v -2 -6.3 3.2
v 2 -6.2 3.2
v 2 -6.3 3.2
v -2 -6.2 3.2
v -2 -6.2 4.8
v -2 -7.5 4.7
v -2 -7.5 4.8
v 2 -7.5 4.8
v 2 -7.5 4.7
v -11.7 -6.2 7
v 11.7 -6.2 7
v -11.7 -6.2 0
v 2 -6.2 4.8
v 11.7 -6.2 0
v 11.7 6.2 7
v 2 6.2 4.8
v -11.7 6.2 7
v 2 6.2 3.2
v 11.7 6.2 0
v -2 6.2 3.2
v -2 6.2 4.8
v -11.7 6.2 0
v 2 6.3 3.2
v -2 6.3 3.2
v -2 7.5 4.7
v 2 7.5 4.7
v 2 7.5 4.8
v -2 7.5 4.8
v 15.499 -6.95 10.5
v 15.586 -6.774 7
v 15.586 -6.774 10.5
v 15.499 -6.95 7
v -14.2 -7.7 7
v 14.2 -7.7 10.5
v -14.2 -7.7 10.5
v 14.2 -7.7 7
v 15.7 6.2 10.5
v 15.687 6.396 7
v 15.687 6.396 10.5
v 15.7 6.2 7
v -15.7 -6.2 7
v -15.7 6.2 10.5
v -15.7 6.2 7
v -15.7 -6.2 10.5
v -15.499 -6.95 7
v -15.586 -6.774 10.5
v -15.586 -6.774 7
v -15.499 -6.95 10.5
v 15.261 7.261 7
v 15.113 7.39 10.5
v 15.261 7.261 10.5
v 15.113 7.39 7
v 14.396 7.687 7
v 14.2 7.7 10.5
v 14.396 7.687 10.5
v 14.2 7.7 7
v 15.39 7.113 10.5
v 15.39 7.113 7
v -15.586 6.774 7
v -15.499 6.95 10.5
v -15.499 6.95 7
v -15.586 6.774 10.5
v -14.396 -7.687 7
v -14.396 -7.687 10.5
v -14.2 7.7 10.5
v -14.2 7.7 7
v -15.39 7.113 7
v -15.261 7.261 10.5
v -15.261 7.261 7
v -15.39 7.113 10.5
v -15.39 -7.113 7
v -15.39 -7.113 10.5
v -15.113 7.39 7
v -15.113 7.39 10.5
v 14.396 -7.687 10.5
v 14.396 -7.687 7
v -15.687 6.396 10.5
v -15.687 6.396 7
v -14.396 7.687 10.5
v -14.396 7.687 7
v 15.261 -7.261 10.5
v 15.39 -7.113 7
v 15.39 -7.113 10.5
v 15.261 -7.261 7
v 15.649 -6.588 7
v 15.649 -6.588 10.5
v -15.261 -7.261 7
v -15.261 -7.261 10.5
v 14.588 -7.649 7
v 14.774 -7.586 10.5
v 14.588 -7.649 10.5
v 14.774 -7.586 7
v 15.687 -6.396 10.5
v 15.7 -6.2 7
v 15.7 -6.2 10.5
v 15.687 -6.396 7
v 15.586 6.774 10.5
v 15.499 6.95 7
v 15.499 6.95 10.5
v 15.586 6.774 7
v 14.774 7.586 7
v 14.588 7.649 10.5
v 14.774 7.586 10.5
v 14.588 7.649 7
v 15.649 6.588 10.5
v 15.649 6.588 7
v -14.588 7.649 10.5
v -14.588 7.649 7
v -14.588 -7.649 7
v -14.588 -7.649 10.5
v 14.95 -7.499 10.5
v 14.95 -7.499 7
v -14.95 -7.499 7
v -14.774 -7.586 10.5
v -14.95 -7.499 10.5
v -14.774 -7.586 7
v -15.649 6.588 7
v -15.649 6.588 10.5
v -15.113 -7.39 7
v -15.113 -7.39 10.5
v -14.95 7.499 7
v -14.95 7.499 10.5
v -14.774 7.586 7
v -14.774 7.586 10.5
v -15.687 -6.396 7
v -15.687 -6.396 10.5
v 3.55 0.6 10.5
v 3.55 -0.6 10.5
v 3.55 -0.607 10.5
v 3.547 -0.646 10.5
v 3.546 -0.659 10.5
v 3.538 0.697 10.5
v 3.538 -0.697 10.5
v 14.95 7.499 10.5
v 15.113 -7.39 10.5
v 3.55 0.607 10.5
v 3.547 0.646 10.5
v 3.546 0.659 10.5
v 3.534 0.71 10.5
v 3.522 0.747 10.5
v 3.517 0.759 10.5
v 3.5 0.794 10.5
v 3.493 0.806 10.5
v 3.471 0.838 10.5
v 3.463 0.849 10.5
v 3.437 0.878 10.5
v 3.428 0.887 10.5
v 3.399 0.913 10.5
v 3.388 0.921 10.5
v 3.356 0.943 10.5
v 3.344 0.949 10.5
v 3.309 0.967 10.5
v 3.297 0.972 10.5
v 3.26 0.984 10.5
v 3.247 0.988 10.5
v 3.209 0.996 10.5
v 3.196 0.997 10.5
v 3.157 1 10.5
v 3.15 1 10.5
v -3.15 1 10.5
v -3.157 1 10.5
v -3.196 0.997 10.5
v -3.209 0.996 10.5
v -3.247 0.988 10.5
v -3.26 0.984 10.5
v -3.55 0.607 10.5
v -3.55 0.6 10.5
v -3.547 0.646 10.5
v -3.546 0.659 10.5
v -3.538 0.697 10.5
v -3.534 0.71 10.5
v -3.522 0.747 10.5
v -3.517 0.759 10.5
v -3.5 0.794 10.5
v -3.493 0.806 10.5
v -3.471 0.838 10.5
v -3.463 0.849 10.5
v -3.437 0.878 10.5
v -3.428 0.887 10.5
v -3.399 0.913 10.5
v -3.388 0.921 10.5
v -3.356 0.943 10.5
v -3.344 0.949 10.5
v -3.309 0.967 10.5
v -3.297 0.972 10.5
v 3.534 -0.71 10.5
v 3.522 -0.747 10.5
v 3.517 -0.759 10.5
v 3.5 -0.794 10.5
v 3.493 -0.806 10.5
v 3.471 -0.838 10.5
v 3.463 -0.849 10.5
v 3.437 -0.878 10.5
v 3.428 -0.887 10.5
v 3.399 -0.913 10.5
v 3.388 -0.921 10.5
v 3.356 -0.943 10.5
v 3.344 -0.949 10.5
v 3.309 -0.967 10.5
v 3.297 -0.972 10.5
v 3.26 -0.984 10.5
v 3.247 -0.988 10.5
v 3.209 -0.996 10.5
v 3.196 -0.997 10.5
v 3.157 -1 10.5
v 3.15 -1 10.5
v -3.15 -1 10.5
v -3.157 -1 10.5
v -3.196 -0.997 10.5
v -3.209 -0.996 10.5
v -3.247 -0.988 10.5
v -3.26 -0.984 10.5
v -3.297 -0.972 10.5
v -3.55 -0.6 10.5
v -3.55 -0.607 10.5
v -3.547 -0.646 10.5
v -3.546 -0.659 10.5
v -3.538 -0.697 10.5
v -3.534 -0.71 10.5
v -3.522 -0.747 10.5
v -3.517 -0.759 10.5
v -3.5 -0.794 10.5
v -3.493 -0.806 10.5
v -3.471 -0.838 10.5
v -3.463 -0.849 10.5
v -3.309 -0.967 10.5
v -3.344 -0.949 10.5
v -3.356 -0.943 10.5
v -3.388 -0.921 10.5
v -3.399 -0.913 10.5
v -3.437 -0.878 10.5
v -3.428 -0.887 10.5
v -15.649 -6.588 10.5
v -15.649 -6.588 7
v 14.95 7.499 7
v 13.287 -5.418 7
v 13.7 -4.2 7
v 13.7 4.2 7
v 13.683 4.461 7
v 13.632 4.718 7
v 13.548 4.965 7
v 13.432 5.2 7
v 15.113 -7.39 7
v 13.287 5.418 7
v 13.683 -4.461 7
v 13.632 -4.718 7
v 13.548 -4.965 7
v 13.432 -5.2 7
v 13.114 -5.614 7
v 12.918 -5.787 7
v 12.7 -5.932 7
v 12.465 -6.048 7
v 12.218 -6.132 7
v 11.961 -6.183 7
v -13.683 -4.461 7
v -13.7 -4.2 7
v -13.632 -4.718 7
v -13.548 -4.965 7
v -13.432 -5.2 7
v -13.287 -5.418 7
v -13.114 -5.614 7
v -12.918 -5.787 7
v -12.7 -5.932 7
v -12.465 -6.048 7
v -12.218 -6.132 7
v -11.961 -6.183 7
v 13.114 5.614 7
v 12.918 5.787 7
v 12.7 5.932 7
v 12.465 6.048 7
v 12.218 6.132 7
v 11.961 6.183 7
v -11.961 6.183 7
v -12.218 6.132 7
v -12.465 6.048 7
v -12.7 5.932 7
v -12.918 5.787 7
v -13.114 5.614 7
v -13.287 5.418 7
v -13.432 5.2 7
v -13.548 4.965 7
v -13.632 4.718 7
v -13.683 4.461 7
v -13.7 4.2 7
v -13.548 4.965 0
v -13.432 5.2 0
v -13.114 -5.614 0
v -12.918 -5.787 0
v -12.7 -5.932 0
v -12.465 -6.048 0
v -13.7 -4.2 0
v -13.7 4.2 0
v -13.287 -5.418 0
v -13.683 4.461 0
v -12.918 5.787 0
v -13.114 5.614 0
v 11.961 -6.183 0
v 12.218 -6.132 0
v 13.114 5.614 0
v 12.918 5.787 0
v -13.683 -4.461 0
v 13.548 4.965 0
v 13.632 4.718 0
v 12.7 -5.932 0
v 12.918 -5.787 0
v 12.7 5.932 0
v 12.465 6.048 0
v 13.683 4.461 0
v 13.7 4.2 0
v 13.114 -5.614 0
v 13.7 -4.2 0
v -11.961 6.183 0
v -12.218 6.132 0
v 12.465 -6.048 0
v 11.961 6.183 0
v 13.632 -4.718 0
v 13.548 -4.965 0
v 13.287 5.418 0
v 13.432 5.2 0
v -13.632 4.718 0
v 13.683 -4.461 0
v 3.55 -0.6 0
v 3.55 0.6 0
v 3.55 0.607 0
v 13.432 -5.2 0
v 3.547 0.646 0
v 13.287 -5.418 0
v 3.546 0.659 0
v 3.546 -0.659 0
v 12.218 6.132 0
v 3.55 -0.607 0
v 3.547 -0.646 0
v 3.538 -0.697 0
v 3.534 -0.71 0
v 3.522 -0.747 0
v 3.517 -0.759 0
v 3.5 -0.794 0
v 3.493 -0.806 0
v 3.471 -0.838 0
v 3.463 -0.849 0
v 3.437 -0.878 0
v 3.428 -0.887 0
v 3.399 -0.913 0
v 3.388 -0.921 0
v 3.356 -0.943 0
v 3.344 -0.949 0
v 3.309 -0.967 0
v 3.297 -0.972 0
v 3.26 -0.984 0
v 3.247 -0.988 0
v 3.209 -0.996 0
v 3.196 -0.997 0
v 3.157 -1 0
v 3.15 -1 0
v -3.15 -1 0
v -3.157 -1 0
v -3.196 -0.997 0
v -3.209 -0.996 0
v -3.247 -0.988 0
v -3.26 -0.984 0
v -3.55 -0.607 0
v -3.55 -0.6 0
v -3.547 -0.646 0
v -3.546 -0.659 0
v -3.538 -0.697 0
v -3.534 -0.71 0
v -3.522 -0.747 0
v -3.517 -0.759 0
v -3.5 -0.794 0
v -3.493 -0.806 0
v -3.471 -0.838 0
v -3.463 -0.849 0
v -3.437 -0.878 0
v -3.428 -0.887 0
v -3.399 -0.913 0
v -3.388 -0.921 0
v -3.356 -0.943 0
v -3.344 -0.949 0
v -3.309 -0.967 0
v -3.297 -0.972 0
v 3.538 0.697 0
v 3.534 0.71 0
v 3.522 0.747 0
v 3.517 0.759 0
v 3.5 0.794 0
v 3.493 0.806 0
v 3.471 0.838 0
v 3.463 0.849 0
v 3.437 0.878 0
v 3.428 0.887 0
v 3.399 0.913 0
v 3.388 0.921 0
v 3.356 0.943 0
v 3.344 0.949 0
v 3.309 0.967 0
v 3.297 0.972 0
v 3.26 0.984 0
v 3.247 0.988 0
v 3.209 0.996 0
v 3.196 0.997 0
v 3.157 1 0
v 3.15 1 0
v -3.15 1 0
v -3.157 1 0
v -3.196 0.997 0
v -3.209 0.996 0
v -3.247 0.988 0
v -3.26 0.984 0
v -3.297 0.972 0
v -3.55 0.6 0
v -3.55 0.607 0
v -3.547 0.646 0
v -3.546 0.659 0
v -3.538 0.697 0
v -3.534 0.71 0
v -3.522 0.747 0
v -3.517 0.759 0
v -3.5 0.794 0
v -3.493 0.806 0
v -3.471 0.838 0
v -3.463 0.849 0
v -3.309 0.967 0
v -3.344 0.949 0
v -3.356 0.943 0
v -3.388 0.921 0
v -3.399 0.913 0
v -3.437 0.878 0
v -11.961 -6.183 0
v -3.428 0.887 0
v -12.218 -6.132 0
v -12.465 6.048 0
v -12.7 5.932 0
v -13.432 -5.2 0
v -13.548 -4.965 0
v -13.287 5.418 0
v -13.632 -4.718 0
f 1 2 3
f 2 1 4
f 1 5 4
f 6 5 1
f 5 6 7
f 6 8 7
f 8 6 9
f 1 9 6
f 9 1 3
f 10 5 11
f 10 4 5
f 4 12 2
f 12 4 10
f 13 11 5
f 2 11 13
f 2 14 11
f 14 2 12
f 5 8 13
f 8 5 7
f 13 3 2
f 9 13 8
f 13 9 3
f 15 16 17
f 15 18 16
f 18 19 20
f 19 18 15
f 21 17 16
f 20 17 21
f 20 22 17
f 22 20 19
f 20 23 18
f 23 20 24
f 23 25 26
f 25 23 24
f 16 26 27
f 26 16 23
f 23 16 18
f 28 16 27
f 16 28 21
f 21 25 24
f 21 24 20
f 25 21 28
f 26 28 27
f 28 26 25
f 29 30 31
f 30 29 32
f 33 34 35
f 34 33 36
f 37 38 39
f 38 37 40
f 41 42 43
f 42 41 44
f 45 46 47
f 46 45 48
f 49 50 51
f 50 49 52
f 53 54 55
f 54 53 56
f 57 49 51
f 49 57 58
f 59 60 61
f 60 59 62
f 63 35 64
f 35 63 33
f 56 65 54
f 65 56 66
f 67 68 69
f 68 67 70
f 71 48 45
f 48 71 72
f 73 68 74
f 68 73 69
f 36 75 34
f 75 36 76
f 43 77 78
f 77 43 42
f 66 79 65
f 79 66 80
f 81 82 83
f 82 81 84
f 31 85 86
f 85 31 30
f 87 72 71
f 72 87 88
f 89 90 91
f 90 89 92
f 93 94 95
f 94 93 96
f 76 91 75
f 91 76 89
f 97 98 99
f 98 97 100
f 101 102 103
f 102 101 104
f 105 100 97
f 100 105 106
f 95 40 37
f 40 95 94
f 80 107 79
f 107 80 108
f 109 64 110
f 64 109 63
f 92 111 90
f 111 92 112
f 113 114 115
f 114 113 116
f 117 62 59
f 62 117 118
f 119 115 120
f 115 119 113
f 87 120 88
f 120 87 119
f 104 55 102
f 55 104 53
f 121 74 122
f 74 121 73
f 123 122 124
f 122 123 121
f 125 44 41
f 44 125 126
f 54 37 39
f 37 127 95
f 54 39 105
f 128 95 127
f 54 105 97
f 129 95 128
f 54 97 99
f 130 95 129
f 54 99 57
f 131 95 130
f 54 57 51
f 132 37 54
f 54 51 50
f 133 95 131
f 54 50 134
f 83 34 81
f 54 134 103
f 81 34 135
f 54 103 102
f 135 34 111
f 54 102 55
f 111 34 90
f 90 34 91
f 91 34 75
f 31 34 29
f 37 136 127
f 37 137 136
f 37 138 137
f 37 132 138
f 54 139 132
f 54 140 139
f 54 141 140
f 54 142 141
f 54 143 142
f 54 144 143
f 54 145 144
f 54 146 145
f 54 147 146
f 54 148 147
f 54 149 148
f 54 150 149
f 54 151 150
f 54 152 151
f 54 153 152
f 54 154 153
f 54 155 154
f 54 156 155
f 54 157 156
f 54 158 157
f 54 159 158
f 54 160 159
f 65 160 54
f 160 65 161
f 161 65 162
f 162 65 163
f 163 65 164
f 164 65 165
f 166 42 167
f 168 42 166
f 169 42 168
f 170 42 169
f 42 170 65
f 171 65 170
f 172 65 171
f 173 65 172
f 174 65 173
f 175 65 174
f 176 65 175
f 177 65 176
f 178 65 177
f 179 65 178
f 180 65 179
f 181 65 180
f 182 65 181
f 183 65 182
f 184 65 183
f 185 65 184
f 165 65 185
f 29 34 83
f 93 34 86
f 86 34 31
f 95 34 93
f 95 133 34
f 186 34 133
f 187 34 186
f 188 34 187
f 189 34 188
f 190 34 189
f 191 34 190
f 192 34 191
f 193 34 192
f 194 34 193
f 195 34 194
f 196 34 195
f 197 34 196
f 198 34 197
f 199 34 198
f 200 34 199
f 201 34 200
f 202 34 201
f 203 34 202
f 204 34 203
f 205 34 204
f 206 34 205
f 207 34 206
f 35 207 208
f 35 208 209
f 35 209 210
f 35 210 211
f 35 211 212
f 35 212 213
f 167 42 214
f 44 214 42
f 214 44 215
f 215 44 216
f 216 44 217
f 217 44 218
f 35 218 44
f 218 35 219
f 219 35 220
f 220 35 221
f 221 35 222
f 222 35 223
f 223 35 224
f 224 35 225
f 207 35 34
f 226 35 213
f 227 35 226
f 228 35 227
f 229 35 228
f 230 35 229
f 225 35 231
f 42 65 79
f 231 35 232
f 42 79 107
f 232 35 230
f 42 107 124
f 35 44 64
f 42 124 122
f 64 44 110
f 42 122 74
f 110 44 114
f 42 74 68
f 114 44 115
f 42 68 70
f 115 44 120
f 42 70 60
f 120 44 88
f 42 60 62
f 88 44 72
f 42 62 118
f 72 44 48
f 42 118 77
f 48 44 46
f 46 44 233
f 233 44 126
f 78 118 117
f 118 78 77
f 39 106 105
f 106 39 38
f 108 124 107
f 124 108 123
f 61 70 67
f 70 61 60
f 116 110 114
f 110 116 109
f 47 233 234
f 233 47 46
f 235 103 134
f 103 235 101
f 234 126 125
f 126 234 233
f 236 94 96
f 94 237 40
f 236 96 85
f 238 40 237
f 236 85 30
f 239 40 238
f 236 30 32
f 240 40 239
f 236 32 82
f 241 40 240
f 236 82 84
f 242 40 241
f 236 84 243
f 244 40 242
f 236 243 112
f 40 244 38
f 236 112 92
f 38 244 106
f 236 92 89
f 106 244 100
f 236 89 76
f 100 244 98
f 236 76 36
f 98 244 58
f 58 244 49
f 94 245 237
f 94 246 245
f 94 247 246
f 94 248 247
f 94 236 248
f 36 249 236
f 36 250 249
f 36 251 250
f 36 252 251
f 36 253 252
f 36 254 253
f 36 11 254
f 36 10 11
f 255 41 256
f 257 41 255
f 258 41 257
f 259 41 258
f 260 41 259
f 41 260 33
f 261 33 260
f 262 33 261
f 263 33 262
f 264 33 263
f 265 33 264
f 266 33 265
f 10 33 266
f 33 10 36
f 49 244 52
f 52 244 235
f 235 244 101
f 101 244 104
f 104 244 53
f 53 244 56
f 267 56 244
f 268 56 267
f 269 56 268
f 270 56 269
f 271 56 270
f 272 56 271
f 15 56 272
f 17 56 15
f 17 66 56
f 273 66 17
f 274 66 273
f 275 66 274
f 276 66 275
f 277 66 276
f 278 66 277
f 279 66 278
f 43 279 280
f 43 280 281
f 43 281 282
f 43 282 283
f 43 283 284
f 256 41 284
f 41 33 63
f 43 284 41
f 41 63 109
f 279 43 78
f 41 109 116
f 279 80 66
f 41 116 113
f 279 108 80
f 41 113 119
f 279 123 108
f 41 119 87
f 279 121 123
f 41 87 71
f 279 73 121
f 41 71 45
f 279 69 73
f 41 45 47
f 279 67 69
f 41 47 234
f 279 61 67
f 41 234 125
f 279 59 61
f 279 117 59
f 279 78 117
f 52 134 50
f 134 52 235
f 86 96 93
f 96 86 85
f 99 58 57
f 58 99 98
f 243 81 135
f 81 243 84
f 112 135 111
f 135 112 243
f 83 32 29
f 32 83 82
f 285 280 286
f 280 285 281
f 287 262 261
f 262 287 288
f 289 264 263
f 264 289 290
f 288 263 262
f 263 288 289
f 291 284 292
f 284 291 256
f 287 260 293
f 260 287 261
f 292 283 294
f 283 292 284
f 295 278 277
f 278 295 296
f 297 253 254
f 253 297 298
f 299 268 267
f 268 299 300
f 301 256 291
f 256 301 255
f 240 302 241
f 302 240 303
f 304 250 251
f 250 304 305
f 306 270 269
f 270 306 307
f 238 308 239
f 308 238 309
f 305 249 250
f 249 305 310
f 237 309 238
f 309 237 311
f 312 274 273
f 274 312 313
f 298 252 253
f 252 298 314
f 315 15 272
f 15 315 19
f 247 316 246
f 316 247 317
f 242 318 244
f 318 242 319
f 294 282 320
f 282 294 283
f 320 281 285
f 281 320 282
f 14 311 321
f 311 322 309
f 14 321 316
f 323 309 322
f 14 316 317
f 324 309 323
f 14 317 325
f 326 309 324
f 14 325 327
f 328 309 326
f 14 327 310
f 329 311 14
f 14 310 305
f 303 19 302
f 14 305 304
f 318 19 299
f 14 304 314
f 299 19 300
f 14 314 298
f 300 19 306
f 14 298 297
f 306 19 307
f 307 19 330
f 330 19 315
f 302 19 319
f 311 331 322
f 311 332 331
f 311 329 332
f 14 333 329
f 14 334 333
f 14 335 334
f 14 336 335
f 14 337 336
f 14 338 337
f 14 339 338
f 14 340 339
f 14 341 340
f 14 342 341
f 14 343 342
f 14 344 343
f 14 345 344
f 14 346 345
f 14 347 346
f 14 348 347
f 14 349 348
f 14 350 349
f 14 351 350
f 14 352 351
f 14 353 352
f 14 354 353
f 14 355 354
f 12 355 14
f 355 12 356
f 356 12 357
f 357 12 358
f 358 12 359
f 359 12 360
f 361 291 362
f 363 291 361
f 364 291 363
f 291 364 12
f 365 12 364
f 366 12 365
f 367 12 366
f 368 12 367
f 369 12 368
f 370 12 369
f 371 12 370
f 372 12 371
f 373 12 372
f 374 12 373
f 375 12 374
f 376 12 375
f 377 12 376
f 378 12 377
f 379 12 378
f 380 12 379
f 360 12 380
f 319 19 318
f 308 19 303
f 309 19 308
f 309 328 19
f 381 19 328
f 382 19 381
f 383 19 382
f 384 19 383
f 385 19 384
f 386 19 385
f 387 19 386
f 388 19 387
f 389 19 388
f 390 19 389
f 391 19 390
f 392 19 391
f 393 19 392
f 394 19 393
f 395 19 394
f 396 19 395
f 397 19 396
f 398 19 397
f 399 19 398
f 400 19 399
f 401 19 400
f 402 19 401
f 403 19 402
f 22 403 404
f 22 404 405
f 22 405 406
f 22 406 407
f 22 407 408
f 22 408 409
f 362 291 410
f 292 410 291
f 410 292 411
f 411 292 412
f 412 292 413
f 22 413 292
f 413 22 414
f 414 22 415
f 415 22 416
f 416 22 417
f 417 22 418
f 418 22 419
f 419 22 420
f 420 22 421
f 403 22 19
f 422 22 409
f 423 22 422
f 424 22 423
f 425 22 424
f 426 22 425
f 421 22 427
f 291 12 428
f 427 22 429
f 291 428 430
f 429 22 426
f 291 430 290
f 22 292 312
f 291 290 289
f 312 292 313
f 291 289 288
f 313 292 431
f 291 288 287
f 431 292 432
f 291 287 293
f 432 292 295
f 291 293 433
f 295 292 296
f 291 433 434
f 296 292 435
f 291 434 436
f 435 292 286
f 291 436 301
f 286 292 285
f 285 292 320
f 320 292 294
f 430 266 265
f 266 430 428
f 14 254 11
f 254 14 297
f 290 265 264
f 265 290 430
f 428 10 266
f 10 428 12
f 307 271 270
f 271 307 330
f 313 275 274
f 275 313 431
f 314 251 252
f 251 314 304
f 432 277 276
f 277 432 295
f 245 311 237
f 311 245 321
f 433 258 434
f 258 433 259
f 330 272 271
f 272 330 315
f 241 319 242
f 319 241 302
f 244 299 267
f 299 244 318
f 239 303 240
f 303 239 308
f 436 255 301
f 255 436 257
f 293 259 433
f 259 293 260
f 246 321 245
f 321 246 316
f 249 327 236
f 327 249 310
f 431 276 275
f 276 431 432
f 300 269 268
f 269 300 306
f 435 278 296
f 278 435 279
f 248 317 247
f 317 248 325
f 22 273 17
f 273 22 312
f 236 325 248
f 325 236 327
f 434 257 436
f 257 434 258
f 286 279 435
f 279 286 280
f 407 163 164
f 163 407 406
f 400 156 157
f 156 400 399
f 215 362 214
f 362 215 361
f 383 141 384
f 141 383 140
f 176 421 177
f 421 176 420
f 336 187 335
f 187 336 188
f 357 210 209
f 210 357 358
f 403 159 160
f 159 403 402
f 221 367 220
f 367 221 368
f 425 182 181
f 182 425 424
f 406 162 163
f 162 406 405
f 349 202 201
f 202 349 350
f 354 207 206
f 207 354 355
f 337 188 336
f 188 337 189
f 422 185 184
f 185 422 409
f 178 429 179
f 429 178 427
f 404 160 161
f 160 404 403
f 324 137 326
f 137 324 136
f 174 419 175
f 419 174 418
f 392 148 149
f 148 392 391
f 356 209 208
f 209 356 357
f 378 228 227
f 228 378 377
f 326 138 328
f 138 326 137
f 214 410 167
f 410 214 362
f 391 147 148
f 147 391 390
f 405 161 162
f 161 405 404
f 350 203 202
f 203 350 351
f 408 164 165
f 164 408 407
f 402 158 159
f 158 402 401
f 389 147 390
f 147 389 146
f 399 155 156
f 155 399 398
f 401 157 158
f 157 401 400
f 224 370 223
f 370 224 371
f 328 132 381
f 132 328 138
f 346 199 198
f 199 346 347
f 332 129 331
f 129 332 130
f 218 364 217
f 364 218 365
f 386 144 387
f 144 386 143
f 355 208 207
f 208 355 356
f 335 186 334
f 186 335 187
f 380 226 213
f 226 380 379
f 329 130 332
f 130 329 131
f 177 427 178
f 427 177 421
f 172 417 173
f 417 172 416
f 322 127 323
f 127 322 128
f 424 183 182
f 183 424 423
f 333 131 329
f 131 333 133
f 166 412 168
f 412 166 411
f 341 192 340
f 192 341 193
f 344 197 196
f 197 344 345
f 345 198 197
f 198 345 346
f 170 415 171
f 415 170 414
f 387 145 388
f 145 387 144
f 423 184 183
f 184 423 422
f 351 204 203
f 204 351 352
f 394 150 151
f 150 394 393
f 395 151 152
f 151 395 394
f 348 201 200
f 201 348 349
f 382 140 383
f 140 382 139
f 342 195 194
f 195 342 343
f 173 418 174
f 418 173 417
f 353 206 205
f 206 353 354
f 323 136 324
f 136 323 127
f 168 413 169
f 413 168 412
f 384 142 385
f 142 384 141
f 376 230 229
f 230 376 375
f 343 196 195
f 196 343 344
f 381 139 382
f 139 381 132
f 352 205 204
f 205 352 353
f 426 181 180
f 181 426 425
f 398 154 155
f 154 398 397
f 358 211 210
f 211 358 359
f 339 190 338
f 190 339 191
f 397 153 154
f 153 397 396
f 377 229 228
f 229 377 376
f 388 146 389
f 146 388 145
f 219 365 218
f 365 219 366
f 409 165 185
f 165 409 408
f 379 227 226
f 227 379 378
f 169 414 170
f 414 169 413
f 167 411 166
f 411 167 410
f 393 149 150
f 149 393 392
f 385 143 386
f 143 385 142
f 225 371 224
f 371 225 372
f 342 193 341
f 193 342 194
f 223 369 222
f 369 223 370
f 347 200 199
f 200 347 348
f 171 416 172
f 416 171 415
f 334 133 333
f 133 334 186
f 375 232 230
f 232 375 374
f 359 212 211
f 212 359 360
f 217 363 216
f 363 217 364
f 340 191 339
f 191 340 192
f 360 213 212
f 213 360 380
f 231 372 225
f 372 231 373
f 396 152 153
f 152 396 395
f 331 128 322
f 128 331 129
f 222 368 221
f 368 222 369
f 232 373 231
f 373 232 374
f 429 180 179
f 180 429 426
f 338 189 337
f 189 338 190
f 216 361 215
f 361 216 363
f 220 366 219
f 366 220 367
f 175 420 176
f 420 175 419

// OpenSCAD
// file: insert_base.scad
// ============================================
// MODULAR CABLE ORGANIZER - BASE INSERT MODULE
// ============================================
// This is the parent module for all insert types
// Include this file and call insert_with_port() with a port shape
// ============================================

include <parameters.scad>

// === BASE INSERT WITH CUSTOM BODY DEPTH ===
module insert_blank_custom(body_depth) {
    union() {
        // Base plate (sits in frame slot)
        rounded_box_rect(insert_width, insert_height, insert_base_depth, 1.5);
        
        // Body (protrudes out front) - custom depth
        translate([0, 0, insert_base_depth])
            rounded_box_rect(insert_body_width, insert_body_height, body_depth, 2);
        
        // Snap tabs on all 4 sides
        snap_tabs_all();
    }
}

// === BASE INSERT (default depth - for backwards compatibility) ===
module insert_blank() {
    insert_blank_custom(insert_body_depth);
}

// === INSERT WITH THROUGH-HOLE PORT (custom depth) ===
// Pass body_depth and a 2D shape as children
module insert_with_port_custom(body_depth) {
    total_depth = insert_base_depth + body_depth;
    difference() {
        insert_blank_custom(body_depth);
        
        // Cut port hole ALL THE WAY through (tube shape)
        translate([0, 0, -0.1])
            linear_extrude(total_depth + 0.2)
            offset(r=port_clearance)  // Add clearance to port opening
            children();
    }
}

// === INSERT WITH THROUGH-HOLE PORT (default depth) ===
module insert_with_port() {
    insert_with_port_custom(insert_body_depth) children();
}

// === PRE-MADE INSERT MODULES WITH CORRECT DEPTHS ===
module insert_usbc() {
    insert_with_port_custom(usbc_body_depth) port_usbc();
}

module insert_usba() {
    insert_with_port_custom(usba_body_depth) port_usba();
}

module insert_usb_mini() {
    insert_with_port_custom(usb_mini_body_depth) port_usb_mini();
}

module insert_usb_micro() {
    insert_with_port_custom(usb_micro_body_depth) port_usb_micro();
}

module insert_usb_b() {
    insert_with_port_custom(usb_b_body_depth) port_usb_b();
}

module insert_lightning() {
    insert_with_port_custom(lightning_body_depth) port_lightning();
}

module insert_hdmi() {
    insert_with_port_custom(hdmi_body_depth) port_hdmi();
}

module insert_audio_jack() {
    insert_with_port_custom(audio_jack_body_depth) port_audio_jack();
}

// === SNAP TABS (on neck/body - catch on frame cutouts) ===
// Tabs are on the body, positioned to engage with frame wall cutouts
module snap_tabs_all() {
    // Position tabs up on body (clear of base/frame)
    tab_z = insert_base_depth + snap_tab_offset;
    
    // Tabs on all 4 sides of the body
    for (angle = [0, 90, 180, 270]) {
        rotate([0, 0, angle])
            translate([0, insert_body_height/2, tab_z])
            neck_snap_tab();
    }
}

module neck_snap_tab() {
    // Wedge shape (FLIPPED): 
    // - Peak/taper on BOTTOM - slides past back plate when inserting
    // - Flat on TOP - catches and holds
    hull() {
        // Peak of wedge (protruding, at BOTTOM of tab)
        translate([-snap_tab_width/2, snap_tab_protrude, 0])
            cube([snap_tab_width, 0.1, 0.1]);
        // Flat top (at body surface, TOP of tab)
        translate([-snap_tab_width/2, 0, snap_tab_thick])
            cube([snap_tab_width, 0.1, 0.1]);
        // Base of wedge (at body surface, bottom)
        translate([-snap_tab_width/2, 0, 0])
            cube([snap_tab_width, 0.1, 0.1]);
    }
}

module snap_tab_horizontal() {
    hull() {
        translate([0, -snap_tab_protrude/2, 0])
            cube([snap_tab_width, 0.1, snap_tab_thick], center=true);
        translate([0, snap_tab_protrude/2, snap_tab_thick * 0.2])
            cube([snap_tab_width, 0.1, snap_tab_thick * 0.6], center=true);
    }
}

module snap_tab_vertical() {
    hull() {
        translate([-snap_tab_protrude/2, 0, 0])
            cube([0.1, snap_tab_width, snap_tab_thick], center=true);
        translate([snap_tab_protrude/2, 0, snap_tab_thick * 0.2])
            cube([0.1, snap_tab_width, snap_tab_thick * 0.6], center=true);
    }
}

// === UTILITY MODULES ===
module rounded_box_rect(w, d, h, r) {
    translate([0, 0, h/2])
        hull() {
            for (x = [-1, 1], y = [-1, 1])
                translate([x * (w/2 - r), y * (d/2 - r), 0])
                    cylinder(h=h, r=r, center=true);
        }
}

// === PORT SHAPE MODULES (2D) ===
// These define the cutout shapes for each connector type

module port_rounded_rect(w, h, r) {
    // Standard rounded rectangle
    hull() {
        for (x = [-1, 1], y = [-1, 1])
            translate([x * (w/2 - r), y * (h/2 - r)])
                circle(r=r);
    }
}

module port_usbc() {
    port_rounded_rect(usbc_w, usbc_h, usbc_r);
}

module port_usba() {
    port_rounded_rect(usba_w, usba_h, usba_r);
}

module port_usb_mini() {
    port_rounded_rect(usb_mini_w, usb_mini_h, usb_mini_r);
}

module port_usb_micro() {
    port_rounded_rect(usb_micro_w, usb_micro_h, usb_micro_r);
}

module port_usb_b() {
    // USB-B has beveled top corners
    hull() {
        // Bottom corners (full radius)
        for (x = [-1, 1])
            translate([x * (usb_b_w/2 - usb_b_r), -(usb_b_h/2 - usb_b_r)])
                circle(r=usb_b_r);
        // Top corners (chamfered - moved inward)
        for (x = [-1, 1])
            translate([x * (usb_b_w/2 - usb_b_r - 1), (usb_b_h/2 - usb_b_r)])
                circle(r=usb_b_r);
    }
}

module port_lightning() {
    port_rounded_rect(lightning_w, lightning_h, lightning_r);
}

module port_hdmi() {
    // HDMI is tapered (wider at top)
    hull() {
        // Top (wider)
        for (x = [-1, 1])
            translate([x * (hdmi_w/2 - hdmi_r), (hdmi_h/2 - hdmi_r)])
                circle(r=hdmi_r);
        // Bottom (narrower)
        for (x = [-1, 1])
            translate([x * (hdmi_w/2 - hdmi_r - 1), -(hdmi_h/2 - hdmi_r)])
                circle(r=hdmi_r);
    }
}

module port_audio_jack() {
    circle(d=audio_jack_dia);
}

module port_label_recess() {
    // Shallow rectangular recess for labels
    square([label_w, label_h], center=true);
}

// === RENDER (for testing this file directly) ===
// insert_blank();
// file: parameters.scad
// ============================================
// MODULAR CABLE ORGANIZER - SHARED PARAMETERS
// ============================================
// All dimensions in mm - include this in all files
// ============================================

$fn = 48;

// === TOLERANCES ===
clearance = 0.3;
port_clearance = 0.1;  // Extra clearance for port openings (reduced - 0.2 was too loose for USB-C)
wall = 1.6;

// === SLOT DIMENSIONS (2:1 aspect ratio) - scaled to 2/3 ===
slot_width = 32;  // Reduced by 1mm for more compact insert
slot_height = 16;  // Reduced by 1mm for more compact insert
slot_depth = 4;  // Reduced from 6mm - less frame depth needed

// === FRAME STRUCTURE ===
frame_wall = 0.5;   // Reduced for more compact frame
frame_border = 8;  // Increased by 10mm for mounting holes with countersink
frame_back = 2;     // Slightly thicker for snap catch strength
mount_hole_dia = 3;
countersink_dia = 6;  // Diameter of countersink for screw heads
countersink_depth = 2;  // Depth of countersink

// === GRID ===
grid_cols = 2;
grid_rows = 2;

// === INSERT BASE DIMENSIONS ===
insert_width = slot_width - (2 * clearance);
insert_height = slot_height - (2 * clearance);
insert_base_depth = slot_depth - 0.5;

// === INSERT BODY (protrudes from frame) ===
insert_body_width = insert_width - 4;
insert_body_height = insert_height - 3;
insert_body_depth = 12;  // Deep enough to accommodate male cable connectors
insert_top_thick = 1.5;  // Top platform thickness

// === SNAP TABS (on neck/body - catch on back plate) ===
snap_tab_width = 4;
snap_tab_protrude = 1.2;  // How far tab sticks out from body
snap_tab_thick = 1.5;     // Z thickness of tab
snap_tab_offset = 2.2;      // Distance from base to tab bottom on insert (increased to clear frame)

// === CONNECTOR PORT DIMENSIONS & BODY DEPTHS ===
// Port dimensions from reference blueprints
// Body depths sized to match typical male connector lengths

// USB-C: 8.4 x 2.6mm, male connector ~9mm
usbc_w = 8.4;
usbc_h = 2.6;
usbc_r = 1.0;
usbc_body_depth = 9;

// USB-A: 14.0 x 6.5mm, male connector ~13mm
usba_w = 14.0;
usba_h = 6.5;
usba_r = 0.5;
usba_body_depth = 13;

// USB Mini: 6.9 x 3.0mm, male connector ~9mm
usb_mini_w = 6.9;
usb_mini_h = 3.0;
usb_mini_r = 0.5;
usb_mini_body_depth = 9;

// USB Micro: 6.9 x 1.8mm, male connector ~7mm
usb_micro_w = 6.9;
usb_micro_h = 1.8;
usb_micro_r = 0.3;
usb_micro_body_depth = 7;

// USB-B: 8.0 x 7.5mm, male connector ~14mm
usb_b_w = 8.0;
usb_b_h = 7.5;
usb_b_r = 1.0;
usb_b_body_depth = 14;

// Lightning: 6.7 x 1.5mm, male connector ~8mm
lightning_w = 6.7;
lightning_h = 1.5;
lightning_r = 0.5;
lightning_body_depth = 8;

// HDMI: 14.0 x 4.5mm, male connector ~16mm
hdmi_w = 14.0;
hdmi_h = 4.5;
hdmi_r = 0.5;
hdmi_body_depth = 16;

// 3.5mm Audio Jack: male plug ~14mm
audio_jack_dia = 6.0;
audio_jack_body_depth = 14;

// Blank/Label: recessed area for label
label_w = 30;
label_h = 12;
label_depth = 0.8;

// === CALCULATED VALUES ===
frame_total_depth = frame_back + slot_depth;
grid_width = (grid_cols * slot_width) + ((grid_cols - 1) * frame_wall);
grid_height = (grid_rows * slot_height) + ((grid_rows - 1) * frame_wall);
frame_width = grid_width + (2 * frame_border);
frame_height_total = grid_height + (2 * frame_border);
insert_total_depth = insert_base_depth + insert_body_depth;
// main file
// ============================================
// PRINT FILE: Micro USB Insert
// ============================================
// Body depth: 7mm (matches Micro USB male connector)
// Print with port side DOWN (flat on bed)
// No supports needed - through-hole design
// ============================================

include <parameters.scad>
include <insert_base.scad>

// Micro USB insert - oriented for printing (port side down)
// Uses usb_micro_body_depth (7mm) for correct height
total_depth = insert_base_depth + usb_micro_body_depth;

rotate([180, 0, 0])
translate([0, 0, -total_depth])
    insert_usb_micro();
